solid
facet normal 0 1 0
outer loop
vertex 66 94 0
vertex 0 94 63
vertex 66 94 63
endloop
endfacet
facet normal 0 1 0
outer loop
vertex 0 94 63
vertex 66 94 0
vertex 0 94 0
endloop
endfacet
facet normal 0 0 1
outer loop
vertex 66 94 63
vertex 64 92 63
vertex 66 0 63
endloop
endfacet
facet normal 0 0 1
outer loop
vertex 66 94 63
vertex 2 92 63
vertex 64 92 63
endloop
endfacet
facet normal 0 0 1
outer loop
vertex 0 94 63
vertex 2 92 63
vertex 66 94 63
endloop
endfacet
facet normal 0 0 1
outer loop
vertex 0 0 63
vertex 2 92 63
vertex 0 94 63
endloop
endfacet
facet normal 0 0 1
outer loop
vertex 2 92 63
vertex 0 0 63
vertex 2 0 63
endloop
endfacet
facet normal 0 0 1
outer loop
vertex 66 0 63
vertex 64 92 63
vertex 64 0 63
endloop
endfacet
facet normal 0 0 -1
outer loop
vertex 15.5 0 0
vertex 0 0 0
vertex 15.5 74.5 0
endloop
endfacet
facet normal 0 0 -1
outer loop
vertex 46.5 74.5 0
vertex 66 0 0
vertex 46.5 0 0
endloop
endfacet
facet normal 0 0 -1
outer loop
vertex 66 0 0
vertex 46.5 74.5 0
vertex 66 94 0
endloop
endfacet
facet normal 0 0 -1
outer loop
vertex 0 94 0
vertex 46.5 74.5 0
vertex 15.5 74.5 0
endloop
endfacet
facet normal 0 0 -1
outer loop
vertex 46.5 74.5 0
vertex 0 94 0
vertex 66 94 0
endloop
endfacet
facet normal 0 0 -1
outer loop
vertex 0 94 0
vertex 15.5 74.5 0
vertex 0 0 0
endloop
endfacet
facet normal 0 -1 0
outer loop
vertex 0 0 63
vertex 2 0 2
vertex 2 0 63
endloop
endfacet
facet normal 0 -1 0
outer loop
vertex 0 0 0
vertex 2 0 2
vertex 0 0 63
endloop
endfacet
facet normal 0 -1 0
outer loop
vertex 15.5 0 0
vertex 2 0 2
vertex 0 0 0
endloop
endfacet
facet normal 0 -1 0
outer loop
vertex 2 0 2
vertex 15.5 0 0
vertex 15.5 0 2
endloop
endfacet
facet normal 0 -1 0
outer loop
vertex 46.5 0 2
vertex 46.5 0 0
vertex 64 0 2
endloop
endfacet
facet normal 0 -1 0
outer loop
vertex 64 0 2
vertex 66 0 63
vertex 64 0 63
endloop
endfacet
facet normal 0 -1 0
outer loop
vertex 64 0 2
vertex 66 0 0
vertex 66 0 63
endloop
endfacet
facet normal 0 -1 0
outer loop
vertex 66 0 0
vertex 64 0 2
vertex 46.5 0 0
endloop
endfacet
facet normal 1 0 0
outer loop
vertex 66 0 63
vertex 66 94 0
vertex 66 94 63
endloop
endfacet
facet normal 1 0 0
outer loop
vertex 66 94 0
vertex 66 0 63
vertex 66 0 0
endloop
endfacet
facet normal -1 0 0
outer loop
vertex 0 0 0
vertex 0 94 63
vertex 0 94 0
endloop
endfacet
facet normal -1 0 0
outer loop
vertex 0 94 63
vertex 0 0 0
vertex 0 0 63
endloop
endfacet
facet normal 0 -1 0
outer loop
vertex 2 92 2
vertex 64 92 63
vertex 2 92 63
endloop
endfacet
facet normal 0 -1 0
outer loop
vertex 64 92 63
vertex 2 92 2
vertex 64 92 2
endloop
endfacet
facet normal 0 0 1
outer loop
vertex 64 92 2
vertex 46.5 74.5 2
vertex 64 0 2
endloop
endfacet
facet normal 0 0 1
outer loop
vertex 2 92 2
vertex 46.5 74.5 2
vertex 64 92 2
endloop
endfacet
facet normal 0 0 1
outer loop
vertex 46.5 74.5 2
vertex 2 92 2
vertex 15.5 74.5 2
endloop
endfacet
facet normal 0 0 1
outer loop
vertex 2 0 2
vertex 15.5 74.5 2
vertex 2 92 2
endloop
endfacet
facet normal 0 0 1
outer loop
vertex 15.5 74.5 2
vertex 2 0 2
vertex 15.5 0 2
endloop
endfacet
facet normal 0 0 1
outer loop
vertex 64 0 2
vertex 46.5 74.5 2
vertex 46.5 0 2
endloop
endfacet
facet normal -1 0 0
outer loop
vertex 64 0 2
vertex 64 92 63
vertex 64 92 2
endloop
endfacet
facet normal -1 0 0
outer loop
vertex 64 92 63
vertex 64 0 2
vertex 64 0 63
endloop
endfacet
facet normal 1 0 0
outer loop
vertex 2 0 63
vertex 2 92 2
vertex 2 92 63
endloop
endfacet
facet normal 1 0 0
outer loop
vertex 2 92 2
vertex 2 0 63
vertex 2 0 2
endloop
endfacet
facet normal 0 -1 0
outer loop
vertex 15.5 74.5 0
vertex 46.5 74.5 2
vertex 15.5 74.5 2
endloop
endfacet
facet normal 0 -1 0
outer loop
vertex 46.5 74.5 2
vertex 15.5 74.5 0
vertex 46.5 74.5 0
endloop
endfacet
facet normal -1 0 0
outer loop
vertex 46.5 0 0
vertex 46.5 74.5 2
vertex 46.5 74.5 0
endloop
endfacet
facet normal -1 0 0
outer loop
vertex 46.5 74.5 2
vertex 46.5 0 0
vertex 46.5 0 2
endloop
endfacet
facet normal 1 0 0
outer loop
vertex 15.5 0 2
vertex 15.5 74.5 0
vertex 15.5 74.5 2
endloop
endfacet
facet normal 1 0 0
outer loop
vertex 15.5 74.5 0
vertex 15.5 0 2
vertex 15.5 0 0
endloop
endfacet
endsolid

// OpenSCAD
cardBoxSlotWidth = 62;
cardBoxSlotHeight = 90;
cardBoxSlot = [cardBoxSlotWidth, cardBoxSlotHeight];

wallOffset = 4;

cardBoxWidth = cardBoxSlotWidth + wallOffset;
cardBoxHeight = cardBoxSlotHeight + wallOffset;
cardBox = [cardBoxWidth, cardBoxHeight];

cardBoxZ = 67 - wallOffset;

difference() {
  linear_extrude(cardBoxZ)
    square(size=cardBox);

  translate(v=[wallOffset / 2, wallOffset / 2, wallOffset / 2])
    linear_extrude(cardBoxZ)
      square(size=cardBoxSlot);

  translate(v=[wallOffset / 2, -wallOffset, wallOffset / 2])
    linear_extrude(cardBoxZ)
      square(size=cardBoxSlot);
  translate(v=[cardBoxSlotWidth / 4, -wallOffset, -wallOffset])
    linear_extrude(cardBoxZ * 2)
      square(
        size=[
          cardBoxSlotWidth / 2,
          cardBoxSlotHeight - cardBoxSlotWidth / 4 + wallOffset,
        ]
      );
}
